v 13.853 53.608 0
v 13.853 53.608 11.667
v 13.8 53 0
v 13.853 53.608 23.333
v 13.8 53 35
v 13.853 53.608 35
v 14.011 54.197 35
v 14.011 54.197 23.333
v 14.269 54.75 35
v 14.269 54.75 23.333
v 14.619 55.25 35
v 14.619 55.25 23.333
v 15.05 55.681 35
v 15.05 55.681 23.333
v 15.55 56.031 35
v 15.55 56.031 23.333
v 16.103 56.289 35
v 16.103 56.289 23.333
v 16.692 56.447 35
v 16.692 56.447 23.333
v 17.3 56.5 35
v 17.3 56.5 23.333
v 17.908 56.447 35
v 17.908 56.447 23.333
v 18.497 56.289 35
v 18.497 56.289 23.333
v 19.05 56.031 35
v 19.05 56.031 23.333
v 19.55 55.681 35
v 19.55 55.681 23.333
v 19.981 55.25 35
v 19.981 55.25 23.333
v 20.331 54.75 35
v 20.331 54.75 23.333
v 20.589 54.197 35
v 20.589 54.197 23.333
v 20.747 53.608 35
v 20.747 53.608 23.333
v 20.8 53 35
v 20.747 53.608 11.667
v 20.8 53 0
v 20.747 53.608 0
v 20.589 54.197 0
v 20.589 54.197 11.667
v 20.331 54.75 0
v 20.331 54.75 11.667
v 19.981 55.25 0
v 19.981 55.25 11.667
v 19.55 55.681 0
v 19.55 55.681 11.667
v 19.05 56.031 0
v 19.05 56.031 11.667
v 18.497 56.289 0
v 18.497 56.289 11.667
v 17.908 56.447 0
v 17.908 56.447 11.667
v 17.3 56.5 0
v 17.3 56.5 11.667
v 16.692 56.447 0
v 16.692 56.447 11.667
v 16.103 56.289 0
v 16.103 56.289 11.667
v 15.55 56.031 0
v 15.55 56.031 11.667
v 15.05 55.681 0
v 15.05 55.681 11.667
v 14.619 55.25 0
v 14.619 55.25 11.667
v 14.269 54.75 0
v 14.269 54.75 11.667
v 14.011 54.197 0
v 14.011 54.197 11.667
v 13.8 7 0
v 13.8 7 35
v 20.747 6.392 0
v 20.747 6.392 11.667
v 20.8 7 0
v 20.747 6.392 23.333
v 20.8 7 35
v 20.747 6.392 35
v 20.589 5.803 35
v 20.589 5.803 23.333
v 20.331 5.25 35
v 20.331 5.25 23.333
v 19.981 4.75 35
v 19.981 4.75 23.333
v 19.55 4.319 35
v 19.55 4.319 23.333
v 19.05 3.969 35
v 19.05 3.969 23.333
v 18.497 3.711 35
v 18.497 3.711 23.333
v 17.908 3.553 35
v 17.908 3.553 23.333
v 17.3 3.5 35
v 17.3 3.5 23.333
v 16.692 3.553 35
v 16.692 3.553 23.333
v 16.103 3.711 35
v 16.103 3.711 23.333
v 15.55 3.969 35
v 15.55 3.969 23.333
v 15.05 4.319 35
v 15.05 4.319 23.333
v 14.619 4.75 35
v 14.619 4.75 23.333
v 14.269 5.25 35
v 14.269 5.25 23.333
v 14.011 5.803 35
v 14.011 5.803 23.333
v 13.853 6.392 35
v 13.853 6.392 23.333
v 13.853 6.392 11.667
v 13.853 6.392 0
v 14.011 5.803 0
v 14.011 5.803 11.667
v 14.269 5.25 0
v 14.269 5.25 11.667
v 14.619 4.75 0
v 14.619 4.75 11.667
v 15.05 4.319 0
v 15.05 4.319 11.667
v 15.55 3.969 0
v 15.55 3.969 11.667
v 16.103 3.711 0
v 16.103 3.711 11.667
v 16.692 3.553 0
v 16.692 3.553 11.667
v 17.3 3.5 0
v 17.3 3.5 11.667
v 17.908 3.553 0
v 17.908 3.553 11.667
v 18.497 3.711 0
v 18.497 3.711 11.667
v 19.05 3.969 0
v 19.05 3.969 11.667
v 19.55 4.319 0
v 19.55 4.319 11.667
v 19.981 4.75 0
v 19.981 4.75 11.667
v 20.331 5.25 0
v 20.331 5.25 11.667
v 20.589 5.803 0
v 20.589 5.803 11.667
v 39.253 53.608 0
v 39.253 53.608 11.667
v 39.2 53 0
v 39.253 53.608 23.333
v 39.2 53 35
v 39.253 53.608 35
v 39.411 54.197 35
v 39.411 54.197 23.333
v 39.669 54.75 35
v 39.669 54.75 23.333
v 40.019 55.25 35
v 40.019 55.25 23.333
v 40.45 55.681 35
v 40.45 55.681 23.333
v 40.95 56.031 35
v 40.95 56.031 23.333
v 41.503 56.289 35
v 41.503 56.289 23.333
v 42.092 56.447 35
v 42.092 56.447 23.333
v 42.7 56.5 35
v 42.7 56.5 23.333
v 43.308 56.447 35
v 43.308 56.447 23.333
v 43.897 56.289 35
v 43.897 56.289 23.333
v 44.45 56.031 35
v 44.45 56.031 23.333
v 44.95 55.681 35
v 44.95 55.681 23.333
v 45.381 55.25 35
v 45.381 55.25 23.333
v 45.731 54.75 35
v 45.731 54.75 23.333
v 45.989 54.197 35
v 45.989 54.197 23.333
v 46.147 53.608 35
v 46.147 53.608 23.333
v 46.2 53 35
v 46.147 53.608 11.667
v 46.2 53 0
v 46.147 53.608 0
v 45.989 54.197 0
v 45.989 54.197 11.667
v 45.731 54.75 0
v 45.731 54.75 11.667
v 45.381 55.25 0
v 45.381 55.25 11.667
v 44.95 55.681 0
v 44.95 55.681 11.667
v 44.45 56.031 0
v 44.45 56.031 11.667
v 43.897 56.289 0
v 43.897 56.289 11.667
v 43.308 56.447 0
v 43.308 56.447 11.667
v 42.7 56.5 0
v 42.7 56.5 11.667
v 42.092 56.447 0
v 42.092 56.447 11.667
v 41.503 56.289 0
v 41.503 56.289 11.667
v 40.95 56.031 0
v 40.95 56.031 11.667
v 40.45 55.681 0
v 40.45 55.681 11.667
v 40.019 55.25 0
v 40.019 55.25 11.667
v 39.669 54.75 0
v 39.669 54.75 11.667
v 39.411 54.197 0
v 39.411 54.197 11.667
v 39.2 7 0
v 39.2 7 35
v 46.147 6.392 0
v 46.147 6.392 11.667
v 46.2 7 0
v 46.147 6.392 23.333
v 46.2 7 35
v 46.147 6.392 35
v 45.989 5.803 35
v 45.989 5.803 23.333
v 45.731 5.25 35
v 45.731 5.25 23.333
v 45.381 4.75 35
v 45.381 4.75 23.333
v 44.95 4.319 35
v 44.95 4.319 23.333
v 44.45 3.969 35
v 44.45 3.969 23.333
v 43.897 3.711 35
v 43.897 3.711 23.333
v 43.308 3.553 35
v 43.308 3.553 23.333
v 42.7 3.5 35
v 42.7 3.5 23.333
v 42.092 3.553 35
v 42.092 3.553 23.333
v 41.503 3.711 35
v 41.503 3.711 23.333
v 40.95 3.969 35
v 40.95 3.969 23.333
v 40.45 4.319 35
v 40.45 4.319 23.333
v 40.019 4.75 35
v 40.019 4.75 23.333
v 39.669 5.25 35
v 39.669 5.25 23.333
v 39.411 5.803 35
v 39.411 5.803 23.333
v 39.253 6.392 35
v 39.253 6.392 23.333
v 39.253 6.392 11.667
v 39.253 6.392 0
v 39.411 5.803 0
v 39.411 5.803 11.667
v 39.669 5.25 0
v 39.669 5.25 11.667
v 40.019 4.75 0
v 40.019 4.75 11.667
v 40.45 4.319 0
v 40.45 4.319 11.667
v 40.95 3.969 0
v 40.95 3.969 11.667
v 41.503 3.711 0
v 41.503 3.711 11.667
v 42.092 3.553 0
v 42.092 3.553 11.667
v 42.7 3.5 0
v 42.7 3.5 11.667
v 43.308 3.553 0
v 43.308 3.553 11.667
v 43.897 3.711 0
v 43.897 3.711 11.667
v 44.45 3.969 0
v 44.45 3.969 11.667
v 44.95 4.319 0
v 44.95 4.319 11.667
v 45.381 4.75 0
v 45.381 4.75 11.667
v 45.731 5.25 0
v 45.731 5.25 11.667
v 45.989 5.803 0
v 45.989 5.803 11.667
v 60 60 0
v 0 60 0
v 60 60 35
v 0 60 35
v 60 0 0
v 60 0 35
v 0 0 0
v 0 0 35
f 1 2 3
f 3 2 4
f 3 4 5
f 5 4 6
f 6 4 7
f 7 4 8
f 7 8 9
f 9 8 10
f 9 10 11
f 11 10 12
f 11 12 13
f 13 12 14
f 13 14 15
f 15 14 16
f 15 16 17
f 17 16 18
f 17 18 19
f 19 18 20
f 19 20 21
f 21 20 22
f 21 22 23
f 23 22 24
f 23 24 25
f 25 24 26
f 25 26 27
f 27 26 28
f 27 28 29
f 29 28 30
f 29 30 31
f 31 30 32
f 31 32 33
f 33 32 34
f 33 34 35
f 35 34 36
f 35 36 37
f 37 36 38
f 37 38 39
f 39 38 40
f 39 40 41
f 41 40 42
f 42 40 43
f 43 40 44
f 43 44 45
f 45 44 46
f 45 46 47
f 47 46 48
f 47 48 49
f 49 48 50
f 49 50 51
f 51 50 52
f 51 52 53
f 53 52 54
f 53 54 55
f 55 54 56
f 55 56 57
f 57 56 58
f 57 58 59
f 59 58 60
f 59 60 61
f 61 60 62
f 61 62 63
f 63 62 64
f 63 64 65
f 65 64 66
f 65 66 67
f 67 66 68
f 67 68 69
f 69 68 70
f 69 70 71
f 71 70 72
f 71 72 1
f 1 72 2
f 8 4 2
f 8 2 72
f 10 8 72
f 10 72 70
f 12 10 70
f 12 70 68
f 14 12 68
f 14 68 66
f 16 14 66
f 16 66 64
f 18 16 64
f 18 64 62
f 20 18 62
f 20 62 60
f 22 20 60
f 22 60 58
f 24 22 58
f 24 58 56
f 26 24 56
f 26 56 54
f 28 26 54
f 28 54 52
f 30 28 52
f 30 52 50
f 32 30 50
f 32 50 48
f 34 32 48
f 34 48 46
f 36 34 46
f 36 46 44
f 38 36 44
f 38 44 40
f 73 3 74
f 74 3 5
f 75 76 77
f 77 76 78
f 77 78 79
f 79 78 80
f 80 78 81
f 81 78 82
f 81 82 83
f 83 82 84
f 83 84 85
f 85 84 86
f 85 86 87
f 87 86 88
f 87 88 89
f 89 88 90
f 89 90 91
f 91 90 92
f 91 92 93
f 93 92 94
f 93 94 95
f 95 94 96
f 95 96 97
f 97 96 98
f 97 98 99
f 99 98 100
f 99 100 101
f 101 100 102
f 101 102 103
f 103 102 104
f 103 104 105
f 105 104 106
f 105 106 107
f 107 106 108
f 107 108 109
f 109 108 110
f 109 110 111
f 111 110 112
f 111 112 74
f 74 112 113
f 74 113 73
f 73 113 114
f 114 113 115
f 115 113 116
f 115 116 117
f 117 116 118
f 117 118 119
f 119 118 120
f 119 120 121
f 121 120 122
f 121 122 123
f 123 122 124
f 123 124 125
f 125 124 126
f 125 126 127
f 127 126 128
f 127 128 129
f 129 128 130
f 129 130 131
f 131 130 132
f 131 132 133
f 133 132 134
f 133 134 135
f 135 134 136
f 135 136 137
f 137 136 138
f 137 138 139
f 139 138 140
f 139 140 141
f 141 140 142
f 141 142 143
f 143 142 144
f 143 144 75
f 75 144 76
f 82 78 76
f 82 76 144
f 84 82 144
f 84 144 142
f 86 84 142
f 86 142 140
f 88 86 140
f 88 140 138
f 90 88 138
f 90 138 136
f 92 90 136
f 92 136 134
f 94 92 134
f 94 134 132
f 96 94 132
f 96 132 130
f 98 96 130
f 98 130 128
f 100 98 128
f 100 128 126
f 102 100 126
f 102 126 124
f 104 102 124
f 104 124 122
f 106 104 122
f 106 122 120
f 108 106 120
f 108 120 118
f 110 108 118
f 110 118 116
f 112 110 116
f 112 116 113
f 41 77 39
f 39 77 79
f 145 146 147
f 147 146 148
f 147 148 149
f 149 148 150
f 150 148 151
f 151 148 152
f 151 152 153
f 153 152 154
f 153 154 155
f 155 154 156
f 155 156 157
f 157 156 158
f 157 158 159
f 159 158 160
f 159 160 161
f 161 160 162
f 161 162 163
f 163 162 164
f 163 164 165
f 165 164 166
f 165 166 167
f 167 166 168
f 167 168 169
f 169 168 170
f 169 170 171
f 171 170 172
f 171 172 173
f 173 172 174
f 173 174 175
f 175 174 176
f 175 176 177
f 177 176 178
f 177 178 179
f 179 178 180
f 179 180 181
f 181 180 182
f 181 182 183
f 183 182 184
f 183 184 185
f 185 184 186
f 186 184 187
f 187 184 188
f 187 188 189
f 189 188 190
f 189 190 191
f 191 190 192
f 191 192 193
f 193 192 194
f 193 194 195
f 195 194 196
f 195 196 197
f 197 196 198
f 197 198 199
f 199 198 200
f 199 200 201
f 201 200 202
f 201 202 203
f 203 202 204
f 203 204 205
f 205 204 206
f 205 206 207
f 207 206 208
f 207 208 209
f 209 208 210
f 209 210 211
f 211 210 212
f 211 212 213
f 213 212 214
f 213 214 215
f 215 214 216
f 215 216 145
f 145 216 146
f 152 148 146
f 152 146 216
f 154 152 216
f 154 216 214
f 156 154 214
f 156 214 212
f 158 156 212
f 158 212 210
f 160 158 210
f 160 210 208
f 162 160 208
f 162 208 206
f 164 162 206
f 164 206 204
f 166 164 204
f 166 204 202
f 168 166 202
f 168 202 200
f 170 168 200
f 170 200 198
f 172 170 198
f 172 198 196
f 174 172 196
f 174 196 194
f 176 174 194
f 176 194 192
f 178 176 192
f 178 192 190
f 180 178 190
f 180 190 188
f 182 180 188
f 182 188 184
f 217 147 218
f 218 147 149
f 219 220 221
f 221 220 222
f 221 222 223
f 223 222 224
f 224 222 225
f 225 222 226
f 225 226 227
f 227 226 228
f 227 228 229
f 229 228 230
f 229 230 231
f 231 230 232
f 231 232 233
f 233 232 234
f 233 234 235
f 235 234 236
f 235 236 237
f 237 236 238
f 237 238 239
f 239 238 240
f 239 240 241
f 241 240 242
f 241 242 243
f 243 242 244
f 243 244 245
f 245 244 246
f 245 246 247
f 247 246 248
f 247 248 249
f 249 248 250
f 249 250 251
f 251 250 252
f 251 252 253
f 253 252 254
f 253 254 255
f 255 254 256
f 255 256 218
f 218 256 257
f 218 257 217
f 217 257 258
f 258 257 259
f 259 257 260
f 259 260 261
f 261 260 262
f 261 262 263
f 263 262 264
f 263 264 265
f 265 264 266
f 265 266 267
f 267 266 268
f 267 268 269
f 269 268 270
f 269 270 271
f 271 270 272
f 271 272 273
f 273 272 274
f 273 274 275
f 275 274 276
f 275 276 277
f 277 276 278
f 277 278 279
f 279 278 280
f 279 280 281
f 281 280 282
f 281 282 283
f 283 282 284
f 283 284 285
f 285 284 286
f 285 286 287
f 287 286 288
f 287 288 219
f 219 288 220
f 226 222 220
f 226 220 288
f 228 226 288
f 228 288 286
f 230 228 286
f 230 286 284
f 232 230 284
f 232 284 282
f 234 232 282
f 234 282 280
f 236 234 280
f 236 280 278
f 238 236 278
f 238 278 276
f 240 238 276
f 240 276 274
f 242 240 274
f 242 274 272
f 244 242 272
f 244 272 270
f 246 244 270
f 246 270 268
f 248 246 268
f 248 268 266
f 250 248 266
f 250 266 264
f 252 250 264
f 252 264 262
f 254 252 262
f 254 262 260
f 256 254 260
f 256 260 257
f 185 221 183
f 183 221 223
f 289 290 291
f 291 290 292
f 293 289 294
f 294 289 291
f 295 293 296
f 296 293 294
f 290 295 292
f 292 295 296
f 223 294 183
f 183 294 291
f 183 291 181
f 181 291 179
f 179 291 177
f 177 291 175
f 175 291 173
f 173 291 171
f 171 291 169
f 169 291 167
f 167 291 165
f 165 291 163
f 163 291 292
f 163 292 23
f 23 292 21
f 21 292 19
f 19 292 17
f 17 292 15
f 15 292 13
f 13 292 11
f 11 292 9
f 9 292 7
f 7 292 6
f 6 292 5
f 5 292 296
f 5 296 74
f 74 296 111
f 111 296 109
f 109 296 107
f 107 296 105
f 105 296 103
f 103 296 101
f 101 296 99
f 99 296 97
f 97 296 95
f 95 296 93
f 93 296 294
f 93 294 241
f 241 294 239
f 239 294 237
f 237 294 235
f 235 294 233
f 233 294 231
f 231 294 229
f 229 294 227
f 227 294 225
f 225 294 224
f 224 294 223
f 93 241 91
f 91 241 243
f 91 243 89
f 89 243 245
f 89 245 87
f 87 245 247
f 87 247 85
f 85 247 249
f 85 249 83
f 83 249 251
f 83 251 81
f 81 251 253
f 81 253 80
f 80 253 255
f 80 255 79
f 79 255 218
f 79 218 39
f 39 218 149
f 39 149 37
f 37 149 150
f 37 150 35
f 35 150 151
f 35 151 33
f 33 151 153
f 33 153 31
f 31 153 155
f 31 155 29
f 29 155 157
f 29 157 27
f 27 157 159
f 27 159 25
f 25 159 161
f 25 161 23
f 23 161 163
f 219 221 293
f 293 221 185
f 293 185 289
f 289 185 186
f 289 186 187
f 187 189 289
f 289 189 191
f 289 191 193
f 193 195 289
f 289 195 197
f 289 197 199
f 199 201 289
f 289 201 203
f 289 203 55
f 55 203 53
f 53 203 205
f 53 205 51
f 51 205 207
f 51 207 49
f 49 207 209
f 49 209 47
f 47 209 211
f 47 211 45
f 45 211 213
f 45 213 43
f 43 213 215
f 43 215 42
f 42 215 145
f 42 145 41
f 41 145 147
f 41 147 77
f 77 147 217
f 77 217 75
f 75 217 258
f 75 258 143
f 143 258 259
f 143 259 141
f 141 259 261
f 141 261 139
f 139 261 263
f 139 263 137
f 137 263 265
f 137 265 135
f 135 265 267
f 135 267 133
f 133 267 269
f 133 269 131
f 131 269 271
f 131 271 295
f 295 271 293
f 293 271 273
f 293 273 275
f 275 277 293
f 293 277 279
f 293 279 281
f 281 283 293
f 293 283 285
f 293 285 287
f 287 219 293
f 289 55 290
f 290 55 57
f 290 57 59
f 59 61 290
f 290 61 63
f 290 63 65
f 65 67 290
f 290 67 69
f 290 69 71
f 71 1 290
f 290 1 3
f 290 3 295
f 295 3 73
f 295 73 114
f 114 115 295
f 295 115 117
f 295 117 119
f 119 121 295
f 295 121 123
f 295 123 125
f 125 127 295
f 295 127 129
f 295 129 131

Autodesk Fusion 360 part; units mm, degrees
sketch "Sketch1" plane through (0, 0, 0) normal (0, 0, 1) x (1, 0, 0)
  line L0 (0, 0) -> (60, 0)
  line L1 (60, 0) -> (60, 60)
  line L2 (60, 60) -> (0, 60)
  line L3 (0, 60) -> (0, 0)
  line L4 (60, 60) -> (0, 0) construction
  line L5 (0, 60) -> (60, 0) construction
  line L6 (30, 30) -> (30, 60) construction
  line L7 (30, 30) -> (30, 0) construction
  line L8 (17.3, 60) -> (17.3, 0) construction
  line L9 (42.7, 60) -> (42.7, 0) construction
  line L10 (0, 7) -> (60, 7) construction
  line L11 (0, 53) -> (60, 53) construction
  circle A0 centre (17.3, 53) radius 3.5
  circle A1 centre (17.3, 7) radius 3.5
  circle A2 centre (42.7, 7) radius 3.5
  circle A3 centre (42.7, 53) radius 3.5
  line L12 (13.8, 53) -> (13.8, 7)
  line L13 (20.8, 7) -> (20.8, 53)
  line L14 (39.2, 53) -> (39.2, 7)
  line L15 (46.2, 7) -> (46.2, 53)
  dimension "d1" = 60
  dimension "d2" = 60
  dimension "d3" = 12.7
  dimension "d4" = 12.7
  dimension "d5" = 23
  dimension "d8" = 23
  dimension "d9" = 7
  dimension "d10" = 7
  dimension "d11" = 7
  dimension "d12" = 7
extrude "Extrude1" add sketch "Sketch1" along normal blind 35
